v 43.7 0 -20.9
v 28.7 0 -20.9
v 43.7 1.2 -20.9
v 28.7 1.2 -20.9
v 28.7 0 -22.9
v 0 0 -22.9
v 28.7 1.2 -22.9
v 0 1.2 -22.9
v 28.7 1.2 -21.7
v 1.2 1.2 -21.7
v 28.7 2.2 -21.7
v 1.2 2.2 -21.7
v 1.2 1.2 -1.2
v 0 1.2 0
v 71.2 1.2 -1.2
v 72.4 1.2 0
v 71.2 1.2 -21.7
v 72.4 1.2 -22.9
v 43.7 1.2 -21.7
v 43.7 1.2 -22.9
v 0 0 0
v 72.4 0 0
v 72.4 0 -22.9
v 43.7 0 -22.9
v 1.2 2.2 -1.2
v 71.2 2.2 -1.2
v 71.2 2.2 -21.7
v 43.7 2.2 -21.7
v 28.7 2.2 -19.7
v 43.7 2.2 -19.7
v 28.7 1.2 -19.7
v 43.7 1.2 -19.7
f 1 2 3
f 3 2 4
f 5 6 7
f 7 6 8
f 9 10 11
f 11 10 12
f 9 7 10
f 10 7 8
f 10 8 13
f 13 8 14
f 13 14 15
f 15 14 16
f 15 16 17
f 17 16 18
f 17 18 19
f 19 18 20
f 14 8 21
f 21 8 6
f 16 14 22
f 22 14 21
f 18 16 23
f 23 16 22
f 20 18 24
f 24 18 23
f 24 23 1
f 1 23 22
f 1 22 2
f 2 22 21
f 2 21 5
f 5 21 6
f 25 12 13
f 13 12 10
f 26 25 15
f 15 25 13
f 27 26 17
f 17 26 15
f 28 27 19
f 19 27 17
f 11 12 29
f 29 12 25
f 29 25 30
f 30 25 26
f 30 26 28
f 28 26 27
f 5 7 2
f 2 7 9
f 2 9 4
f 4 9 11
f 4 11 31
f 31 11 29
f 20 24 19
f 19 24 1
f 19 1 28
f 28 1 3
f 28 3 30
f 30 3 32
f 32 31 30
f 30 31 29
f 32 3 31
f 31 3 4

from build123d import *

# Parameters (mm, degrees)
SKICA1_W                 = 72.4
SKICA1_H                 = 22.9
P_IDAT_VYSUNUT_M2_DEPTH  = 1.2
SKICA2_W                 = 70
SKICA2_H                 = 20.5
P_IDAT_VYSUNUT_M3_DEPTH  = 1
SKICA3_W                 = 15
SKICA3_H                 = 2
ODEBRAT_VYSUNUT_M1_DEPTH = 10
SKICA4_W                 = 15
SKICA4_H                 = 1.2
ODEBRAT_VYSUNUT_M2_DEPTH = 1


with BuildPart() as part:
    # Skica1 → Přidat vysunutím2 (new body)
    with BuildSketch(Plane(origin=(0, 0, 0), x_dir=(1, 0, 0), z_dir=(0, 1, 0))):
        with Locations((36.2, 11.45)):
            Rectangle(SKICA1_W, SKICA1_H)
    extrude(amount=P_IDAT_VYSUNUT_M2_DEPTH)

    # Skica2 → Přidat vysunutím3 (add)
    with BuildSketch(Plane(origin=(0, 1.2, 0), x_dir=(1, 0, 0), z_dir=(0, 1, 0))):
        with Locations((36.2, 11.45)):
            Rectangle(SKICA2_W, SKICA2_H)
    extrude(amount=P_IDAT_VYSUNUT_M3_DEPTH)

    # Skica3 → Odebrat vysunutím1 (cut)
    with BuildSketch(Plane(origin=(0, 2.2, 0), x_dir=(1, 0, 0), z_dir=(0, 1, 0))):
        with Locations((36.2, 21.9)):
            Rectangle(SKICA3_W, SKICA3_H)
    extrude(amount=-ODEBRAT_VYSUNUT_M1_DEPTH, mode=Mode.SUBTRACT)

    # Skica4 → Odebrat vysunutím2 (cut)
    with BuildSketch(Plane(origin=(0, 2.2, 0), x_dir=(1, 0, 0), z_dir=(0, 1, 0))):
        with Locations((36.2, 20.3)):
            Rectangle(SKICA4_W, SKICA4_H)
    extrude(amount=-ODEBRAT_VYSUNUT_M2_DEPTH, mode=Mode.SUBTRACT)


solid = part.part
